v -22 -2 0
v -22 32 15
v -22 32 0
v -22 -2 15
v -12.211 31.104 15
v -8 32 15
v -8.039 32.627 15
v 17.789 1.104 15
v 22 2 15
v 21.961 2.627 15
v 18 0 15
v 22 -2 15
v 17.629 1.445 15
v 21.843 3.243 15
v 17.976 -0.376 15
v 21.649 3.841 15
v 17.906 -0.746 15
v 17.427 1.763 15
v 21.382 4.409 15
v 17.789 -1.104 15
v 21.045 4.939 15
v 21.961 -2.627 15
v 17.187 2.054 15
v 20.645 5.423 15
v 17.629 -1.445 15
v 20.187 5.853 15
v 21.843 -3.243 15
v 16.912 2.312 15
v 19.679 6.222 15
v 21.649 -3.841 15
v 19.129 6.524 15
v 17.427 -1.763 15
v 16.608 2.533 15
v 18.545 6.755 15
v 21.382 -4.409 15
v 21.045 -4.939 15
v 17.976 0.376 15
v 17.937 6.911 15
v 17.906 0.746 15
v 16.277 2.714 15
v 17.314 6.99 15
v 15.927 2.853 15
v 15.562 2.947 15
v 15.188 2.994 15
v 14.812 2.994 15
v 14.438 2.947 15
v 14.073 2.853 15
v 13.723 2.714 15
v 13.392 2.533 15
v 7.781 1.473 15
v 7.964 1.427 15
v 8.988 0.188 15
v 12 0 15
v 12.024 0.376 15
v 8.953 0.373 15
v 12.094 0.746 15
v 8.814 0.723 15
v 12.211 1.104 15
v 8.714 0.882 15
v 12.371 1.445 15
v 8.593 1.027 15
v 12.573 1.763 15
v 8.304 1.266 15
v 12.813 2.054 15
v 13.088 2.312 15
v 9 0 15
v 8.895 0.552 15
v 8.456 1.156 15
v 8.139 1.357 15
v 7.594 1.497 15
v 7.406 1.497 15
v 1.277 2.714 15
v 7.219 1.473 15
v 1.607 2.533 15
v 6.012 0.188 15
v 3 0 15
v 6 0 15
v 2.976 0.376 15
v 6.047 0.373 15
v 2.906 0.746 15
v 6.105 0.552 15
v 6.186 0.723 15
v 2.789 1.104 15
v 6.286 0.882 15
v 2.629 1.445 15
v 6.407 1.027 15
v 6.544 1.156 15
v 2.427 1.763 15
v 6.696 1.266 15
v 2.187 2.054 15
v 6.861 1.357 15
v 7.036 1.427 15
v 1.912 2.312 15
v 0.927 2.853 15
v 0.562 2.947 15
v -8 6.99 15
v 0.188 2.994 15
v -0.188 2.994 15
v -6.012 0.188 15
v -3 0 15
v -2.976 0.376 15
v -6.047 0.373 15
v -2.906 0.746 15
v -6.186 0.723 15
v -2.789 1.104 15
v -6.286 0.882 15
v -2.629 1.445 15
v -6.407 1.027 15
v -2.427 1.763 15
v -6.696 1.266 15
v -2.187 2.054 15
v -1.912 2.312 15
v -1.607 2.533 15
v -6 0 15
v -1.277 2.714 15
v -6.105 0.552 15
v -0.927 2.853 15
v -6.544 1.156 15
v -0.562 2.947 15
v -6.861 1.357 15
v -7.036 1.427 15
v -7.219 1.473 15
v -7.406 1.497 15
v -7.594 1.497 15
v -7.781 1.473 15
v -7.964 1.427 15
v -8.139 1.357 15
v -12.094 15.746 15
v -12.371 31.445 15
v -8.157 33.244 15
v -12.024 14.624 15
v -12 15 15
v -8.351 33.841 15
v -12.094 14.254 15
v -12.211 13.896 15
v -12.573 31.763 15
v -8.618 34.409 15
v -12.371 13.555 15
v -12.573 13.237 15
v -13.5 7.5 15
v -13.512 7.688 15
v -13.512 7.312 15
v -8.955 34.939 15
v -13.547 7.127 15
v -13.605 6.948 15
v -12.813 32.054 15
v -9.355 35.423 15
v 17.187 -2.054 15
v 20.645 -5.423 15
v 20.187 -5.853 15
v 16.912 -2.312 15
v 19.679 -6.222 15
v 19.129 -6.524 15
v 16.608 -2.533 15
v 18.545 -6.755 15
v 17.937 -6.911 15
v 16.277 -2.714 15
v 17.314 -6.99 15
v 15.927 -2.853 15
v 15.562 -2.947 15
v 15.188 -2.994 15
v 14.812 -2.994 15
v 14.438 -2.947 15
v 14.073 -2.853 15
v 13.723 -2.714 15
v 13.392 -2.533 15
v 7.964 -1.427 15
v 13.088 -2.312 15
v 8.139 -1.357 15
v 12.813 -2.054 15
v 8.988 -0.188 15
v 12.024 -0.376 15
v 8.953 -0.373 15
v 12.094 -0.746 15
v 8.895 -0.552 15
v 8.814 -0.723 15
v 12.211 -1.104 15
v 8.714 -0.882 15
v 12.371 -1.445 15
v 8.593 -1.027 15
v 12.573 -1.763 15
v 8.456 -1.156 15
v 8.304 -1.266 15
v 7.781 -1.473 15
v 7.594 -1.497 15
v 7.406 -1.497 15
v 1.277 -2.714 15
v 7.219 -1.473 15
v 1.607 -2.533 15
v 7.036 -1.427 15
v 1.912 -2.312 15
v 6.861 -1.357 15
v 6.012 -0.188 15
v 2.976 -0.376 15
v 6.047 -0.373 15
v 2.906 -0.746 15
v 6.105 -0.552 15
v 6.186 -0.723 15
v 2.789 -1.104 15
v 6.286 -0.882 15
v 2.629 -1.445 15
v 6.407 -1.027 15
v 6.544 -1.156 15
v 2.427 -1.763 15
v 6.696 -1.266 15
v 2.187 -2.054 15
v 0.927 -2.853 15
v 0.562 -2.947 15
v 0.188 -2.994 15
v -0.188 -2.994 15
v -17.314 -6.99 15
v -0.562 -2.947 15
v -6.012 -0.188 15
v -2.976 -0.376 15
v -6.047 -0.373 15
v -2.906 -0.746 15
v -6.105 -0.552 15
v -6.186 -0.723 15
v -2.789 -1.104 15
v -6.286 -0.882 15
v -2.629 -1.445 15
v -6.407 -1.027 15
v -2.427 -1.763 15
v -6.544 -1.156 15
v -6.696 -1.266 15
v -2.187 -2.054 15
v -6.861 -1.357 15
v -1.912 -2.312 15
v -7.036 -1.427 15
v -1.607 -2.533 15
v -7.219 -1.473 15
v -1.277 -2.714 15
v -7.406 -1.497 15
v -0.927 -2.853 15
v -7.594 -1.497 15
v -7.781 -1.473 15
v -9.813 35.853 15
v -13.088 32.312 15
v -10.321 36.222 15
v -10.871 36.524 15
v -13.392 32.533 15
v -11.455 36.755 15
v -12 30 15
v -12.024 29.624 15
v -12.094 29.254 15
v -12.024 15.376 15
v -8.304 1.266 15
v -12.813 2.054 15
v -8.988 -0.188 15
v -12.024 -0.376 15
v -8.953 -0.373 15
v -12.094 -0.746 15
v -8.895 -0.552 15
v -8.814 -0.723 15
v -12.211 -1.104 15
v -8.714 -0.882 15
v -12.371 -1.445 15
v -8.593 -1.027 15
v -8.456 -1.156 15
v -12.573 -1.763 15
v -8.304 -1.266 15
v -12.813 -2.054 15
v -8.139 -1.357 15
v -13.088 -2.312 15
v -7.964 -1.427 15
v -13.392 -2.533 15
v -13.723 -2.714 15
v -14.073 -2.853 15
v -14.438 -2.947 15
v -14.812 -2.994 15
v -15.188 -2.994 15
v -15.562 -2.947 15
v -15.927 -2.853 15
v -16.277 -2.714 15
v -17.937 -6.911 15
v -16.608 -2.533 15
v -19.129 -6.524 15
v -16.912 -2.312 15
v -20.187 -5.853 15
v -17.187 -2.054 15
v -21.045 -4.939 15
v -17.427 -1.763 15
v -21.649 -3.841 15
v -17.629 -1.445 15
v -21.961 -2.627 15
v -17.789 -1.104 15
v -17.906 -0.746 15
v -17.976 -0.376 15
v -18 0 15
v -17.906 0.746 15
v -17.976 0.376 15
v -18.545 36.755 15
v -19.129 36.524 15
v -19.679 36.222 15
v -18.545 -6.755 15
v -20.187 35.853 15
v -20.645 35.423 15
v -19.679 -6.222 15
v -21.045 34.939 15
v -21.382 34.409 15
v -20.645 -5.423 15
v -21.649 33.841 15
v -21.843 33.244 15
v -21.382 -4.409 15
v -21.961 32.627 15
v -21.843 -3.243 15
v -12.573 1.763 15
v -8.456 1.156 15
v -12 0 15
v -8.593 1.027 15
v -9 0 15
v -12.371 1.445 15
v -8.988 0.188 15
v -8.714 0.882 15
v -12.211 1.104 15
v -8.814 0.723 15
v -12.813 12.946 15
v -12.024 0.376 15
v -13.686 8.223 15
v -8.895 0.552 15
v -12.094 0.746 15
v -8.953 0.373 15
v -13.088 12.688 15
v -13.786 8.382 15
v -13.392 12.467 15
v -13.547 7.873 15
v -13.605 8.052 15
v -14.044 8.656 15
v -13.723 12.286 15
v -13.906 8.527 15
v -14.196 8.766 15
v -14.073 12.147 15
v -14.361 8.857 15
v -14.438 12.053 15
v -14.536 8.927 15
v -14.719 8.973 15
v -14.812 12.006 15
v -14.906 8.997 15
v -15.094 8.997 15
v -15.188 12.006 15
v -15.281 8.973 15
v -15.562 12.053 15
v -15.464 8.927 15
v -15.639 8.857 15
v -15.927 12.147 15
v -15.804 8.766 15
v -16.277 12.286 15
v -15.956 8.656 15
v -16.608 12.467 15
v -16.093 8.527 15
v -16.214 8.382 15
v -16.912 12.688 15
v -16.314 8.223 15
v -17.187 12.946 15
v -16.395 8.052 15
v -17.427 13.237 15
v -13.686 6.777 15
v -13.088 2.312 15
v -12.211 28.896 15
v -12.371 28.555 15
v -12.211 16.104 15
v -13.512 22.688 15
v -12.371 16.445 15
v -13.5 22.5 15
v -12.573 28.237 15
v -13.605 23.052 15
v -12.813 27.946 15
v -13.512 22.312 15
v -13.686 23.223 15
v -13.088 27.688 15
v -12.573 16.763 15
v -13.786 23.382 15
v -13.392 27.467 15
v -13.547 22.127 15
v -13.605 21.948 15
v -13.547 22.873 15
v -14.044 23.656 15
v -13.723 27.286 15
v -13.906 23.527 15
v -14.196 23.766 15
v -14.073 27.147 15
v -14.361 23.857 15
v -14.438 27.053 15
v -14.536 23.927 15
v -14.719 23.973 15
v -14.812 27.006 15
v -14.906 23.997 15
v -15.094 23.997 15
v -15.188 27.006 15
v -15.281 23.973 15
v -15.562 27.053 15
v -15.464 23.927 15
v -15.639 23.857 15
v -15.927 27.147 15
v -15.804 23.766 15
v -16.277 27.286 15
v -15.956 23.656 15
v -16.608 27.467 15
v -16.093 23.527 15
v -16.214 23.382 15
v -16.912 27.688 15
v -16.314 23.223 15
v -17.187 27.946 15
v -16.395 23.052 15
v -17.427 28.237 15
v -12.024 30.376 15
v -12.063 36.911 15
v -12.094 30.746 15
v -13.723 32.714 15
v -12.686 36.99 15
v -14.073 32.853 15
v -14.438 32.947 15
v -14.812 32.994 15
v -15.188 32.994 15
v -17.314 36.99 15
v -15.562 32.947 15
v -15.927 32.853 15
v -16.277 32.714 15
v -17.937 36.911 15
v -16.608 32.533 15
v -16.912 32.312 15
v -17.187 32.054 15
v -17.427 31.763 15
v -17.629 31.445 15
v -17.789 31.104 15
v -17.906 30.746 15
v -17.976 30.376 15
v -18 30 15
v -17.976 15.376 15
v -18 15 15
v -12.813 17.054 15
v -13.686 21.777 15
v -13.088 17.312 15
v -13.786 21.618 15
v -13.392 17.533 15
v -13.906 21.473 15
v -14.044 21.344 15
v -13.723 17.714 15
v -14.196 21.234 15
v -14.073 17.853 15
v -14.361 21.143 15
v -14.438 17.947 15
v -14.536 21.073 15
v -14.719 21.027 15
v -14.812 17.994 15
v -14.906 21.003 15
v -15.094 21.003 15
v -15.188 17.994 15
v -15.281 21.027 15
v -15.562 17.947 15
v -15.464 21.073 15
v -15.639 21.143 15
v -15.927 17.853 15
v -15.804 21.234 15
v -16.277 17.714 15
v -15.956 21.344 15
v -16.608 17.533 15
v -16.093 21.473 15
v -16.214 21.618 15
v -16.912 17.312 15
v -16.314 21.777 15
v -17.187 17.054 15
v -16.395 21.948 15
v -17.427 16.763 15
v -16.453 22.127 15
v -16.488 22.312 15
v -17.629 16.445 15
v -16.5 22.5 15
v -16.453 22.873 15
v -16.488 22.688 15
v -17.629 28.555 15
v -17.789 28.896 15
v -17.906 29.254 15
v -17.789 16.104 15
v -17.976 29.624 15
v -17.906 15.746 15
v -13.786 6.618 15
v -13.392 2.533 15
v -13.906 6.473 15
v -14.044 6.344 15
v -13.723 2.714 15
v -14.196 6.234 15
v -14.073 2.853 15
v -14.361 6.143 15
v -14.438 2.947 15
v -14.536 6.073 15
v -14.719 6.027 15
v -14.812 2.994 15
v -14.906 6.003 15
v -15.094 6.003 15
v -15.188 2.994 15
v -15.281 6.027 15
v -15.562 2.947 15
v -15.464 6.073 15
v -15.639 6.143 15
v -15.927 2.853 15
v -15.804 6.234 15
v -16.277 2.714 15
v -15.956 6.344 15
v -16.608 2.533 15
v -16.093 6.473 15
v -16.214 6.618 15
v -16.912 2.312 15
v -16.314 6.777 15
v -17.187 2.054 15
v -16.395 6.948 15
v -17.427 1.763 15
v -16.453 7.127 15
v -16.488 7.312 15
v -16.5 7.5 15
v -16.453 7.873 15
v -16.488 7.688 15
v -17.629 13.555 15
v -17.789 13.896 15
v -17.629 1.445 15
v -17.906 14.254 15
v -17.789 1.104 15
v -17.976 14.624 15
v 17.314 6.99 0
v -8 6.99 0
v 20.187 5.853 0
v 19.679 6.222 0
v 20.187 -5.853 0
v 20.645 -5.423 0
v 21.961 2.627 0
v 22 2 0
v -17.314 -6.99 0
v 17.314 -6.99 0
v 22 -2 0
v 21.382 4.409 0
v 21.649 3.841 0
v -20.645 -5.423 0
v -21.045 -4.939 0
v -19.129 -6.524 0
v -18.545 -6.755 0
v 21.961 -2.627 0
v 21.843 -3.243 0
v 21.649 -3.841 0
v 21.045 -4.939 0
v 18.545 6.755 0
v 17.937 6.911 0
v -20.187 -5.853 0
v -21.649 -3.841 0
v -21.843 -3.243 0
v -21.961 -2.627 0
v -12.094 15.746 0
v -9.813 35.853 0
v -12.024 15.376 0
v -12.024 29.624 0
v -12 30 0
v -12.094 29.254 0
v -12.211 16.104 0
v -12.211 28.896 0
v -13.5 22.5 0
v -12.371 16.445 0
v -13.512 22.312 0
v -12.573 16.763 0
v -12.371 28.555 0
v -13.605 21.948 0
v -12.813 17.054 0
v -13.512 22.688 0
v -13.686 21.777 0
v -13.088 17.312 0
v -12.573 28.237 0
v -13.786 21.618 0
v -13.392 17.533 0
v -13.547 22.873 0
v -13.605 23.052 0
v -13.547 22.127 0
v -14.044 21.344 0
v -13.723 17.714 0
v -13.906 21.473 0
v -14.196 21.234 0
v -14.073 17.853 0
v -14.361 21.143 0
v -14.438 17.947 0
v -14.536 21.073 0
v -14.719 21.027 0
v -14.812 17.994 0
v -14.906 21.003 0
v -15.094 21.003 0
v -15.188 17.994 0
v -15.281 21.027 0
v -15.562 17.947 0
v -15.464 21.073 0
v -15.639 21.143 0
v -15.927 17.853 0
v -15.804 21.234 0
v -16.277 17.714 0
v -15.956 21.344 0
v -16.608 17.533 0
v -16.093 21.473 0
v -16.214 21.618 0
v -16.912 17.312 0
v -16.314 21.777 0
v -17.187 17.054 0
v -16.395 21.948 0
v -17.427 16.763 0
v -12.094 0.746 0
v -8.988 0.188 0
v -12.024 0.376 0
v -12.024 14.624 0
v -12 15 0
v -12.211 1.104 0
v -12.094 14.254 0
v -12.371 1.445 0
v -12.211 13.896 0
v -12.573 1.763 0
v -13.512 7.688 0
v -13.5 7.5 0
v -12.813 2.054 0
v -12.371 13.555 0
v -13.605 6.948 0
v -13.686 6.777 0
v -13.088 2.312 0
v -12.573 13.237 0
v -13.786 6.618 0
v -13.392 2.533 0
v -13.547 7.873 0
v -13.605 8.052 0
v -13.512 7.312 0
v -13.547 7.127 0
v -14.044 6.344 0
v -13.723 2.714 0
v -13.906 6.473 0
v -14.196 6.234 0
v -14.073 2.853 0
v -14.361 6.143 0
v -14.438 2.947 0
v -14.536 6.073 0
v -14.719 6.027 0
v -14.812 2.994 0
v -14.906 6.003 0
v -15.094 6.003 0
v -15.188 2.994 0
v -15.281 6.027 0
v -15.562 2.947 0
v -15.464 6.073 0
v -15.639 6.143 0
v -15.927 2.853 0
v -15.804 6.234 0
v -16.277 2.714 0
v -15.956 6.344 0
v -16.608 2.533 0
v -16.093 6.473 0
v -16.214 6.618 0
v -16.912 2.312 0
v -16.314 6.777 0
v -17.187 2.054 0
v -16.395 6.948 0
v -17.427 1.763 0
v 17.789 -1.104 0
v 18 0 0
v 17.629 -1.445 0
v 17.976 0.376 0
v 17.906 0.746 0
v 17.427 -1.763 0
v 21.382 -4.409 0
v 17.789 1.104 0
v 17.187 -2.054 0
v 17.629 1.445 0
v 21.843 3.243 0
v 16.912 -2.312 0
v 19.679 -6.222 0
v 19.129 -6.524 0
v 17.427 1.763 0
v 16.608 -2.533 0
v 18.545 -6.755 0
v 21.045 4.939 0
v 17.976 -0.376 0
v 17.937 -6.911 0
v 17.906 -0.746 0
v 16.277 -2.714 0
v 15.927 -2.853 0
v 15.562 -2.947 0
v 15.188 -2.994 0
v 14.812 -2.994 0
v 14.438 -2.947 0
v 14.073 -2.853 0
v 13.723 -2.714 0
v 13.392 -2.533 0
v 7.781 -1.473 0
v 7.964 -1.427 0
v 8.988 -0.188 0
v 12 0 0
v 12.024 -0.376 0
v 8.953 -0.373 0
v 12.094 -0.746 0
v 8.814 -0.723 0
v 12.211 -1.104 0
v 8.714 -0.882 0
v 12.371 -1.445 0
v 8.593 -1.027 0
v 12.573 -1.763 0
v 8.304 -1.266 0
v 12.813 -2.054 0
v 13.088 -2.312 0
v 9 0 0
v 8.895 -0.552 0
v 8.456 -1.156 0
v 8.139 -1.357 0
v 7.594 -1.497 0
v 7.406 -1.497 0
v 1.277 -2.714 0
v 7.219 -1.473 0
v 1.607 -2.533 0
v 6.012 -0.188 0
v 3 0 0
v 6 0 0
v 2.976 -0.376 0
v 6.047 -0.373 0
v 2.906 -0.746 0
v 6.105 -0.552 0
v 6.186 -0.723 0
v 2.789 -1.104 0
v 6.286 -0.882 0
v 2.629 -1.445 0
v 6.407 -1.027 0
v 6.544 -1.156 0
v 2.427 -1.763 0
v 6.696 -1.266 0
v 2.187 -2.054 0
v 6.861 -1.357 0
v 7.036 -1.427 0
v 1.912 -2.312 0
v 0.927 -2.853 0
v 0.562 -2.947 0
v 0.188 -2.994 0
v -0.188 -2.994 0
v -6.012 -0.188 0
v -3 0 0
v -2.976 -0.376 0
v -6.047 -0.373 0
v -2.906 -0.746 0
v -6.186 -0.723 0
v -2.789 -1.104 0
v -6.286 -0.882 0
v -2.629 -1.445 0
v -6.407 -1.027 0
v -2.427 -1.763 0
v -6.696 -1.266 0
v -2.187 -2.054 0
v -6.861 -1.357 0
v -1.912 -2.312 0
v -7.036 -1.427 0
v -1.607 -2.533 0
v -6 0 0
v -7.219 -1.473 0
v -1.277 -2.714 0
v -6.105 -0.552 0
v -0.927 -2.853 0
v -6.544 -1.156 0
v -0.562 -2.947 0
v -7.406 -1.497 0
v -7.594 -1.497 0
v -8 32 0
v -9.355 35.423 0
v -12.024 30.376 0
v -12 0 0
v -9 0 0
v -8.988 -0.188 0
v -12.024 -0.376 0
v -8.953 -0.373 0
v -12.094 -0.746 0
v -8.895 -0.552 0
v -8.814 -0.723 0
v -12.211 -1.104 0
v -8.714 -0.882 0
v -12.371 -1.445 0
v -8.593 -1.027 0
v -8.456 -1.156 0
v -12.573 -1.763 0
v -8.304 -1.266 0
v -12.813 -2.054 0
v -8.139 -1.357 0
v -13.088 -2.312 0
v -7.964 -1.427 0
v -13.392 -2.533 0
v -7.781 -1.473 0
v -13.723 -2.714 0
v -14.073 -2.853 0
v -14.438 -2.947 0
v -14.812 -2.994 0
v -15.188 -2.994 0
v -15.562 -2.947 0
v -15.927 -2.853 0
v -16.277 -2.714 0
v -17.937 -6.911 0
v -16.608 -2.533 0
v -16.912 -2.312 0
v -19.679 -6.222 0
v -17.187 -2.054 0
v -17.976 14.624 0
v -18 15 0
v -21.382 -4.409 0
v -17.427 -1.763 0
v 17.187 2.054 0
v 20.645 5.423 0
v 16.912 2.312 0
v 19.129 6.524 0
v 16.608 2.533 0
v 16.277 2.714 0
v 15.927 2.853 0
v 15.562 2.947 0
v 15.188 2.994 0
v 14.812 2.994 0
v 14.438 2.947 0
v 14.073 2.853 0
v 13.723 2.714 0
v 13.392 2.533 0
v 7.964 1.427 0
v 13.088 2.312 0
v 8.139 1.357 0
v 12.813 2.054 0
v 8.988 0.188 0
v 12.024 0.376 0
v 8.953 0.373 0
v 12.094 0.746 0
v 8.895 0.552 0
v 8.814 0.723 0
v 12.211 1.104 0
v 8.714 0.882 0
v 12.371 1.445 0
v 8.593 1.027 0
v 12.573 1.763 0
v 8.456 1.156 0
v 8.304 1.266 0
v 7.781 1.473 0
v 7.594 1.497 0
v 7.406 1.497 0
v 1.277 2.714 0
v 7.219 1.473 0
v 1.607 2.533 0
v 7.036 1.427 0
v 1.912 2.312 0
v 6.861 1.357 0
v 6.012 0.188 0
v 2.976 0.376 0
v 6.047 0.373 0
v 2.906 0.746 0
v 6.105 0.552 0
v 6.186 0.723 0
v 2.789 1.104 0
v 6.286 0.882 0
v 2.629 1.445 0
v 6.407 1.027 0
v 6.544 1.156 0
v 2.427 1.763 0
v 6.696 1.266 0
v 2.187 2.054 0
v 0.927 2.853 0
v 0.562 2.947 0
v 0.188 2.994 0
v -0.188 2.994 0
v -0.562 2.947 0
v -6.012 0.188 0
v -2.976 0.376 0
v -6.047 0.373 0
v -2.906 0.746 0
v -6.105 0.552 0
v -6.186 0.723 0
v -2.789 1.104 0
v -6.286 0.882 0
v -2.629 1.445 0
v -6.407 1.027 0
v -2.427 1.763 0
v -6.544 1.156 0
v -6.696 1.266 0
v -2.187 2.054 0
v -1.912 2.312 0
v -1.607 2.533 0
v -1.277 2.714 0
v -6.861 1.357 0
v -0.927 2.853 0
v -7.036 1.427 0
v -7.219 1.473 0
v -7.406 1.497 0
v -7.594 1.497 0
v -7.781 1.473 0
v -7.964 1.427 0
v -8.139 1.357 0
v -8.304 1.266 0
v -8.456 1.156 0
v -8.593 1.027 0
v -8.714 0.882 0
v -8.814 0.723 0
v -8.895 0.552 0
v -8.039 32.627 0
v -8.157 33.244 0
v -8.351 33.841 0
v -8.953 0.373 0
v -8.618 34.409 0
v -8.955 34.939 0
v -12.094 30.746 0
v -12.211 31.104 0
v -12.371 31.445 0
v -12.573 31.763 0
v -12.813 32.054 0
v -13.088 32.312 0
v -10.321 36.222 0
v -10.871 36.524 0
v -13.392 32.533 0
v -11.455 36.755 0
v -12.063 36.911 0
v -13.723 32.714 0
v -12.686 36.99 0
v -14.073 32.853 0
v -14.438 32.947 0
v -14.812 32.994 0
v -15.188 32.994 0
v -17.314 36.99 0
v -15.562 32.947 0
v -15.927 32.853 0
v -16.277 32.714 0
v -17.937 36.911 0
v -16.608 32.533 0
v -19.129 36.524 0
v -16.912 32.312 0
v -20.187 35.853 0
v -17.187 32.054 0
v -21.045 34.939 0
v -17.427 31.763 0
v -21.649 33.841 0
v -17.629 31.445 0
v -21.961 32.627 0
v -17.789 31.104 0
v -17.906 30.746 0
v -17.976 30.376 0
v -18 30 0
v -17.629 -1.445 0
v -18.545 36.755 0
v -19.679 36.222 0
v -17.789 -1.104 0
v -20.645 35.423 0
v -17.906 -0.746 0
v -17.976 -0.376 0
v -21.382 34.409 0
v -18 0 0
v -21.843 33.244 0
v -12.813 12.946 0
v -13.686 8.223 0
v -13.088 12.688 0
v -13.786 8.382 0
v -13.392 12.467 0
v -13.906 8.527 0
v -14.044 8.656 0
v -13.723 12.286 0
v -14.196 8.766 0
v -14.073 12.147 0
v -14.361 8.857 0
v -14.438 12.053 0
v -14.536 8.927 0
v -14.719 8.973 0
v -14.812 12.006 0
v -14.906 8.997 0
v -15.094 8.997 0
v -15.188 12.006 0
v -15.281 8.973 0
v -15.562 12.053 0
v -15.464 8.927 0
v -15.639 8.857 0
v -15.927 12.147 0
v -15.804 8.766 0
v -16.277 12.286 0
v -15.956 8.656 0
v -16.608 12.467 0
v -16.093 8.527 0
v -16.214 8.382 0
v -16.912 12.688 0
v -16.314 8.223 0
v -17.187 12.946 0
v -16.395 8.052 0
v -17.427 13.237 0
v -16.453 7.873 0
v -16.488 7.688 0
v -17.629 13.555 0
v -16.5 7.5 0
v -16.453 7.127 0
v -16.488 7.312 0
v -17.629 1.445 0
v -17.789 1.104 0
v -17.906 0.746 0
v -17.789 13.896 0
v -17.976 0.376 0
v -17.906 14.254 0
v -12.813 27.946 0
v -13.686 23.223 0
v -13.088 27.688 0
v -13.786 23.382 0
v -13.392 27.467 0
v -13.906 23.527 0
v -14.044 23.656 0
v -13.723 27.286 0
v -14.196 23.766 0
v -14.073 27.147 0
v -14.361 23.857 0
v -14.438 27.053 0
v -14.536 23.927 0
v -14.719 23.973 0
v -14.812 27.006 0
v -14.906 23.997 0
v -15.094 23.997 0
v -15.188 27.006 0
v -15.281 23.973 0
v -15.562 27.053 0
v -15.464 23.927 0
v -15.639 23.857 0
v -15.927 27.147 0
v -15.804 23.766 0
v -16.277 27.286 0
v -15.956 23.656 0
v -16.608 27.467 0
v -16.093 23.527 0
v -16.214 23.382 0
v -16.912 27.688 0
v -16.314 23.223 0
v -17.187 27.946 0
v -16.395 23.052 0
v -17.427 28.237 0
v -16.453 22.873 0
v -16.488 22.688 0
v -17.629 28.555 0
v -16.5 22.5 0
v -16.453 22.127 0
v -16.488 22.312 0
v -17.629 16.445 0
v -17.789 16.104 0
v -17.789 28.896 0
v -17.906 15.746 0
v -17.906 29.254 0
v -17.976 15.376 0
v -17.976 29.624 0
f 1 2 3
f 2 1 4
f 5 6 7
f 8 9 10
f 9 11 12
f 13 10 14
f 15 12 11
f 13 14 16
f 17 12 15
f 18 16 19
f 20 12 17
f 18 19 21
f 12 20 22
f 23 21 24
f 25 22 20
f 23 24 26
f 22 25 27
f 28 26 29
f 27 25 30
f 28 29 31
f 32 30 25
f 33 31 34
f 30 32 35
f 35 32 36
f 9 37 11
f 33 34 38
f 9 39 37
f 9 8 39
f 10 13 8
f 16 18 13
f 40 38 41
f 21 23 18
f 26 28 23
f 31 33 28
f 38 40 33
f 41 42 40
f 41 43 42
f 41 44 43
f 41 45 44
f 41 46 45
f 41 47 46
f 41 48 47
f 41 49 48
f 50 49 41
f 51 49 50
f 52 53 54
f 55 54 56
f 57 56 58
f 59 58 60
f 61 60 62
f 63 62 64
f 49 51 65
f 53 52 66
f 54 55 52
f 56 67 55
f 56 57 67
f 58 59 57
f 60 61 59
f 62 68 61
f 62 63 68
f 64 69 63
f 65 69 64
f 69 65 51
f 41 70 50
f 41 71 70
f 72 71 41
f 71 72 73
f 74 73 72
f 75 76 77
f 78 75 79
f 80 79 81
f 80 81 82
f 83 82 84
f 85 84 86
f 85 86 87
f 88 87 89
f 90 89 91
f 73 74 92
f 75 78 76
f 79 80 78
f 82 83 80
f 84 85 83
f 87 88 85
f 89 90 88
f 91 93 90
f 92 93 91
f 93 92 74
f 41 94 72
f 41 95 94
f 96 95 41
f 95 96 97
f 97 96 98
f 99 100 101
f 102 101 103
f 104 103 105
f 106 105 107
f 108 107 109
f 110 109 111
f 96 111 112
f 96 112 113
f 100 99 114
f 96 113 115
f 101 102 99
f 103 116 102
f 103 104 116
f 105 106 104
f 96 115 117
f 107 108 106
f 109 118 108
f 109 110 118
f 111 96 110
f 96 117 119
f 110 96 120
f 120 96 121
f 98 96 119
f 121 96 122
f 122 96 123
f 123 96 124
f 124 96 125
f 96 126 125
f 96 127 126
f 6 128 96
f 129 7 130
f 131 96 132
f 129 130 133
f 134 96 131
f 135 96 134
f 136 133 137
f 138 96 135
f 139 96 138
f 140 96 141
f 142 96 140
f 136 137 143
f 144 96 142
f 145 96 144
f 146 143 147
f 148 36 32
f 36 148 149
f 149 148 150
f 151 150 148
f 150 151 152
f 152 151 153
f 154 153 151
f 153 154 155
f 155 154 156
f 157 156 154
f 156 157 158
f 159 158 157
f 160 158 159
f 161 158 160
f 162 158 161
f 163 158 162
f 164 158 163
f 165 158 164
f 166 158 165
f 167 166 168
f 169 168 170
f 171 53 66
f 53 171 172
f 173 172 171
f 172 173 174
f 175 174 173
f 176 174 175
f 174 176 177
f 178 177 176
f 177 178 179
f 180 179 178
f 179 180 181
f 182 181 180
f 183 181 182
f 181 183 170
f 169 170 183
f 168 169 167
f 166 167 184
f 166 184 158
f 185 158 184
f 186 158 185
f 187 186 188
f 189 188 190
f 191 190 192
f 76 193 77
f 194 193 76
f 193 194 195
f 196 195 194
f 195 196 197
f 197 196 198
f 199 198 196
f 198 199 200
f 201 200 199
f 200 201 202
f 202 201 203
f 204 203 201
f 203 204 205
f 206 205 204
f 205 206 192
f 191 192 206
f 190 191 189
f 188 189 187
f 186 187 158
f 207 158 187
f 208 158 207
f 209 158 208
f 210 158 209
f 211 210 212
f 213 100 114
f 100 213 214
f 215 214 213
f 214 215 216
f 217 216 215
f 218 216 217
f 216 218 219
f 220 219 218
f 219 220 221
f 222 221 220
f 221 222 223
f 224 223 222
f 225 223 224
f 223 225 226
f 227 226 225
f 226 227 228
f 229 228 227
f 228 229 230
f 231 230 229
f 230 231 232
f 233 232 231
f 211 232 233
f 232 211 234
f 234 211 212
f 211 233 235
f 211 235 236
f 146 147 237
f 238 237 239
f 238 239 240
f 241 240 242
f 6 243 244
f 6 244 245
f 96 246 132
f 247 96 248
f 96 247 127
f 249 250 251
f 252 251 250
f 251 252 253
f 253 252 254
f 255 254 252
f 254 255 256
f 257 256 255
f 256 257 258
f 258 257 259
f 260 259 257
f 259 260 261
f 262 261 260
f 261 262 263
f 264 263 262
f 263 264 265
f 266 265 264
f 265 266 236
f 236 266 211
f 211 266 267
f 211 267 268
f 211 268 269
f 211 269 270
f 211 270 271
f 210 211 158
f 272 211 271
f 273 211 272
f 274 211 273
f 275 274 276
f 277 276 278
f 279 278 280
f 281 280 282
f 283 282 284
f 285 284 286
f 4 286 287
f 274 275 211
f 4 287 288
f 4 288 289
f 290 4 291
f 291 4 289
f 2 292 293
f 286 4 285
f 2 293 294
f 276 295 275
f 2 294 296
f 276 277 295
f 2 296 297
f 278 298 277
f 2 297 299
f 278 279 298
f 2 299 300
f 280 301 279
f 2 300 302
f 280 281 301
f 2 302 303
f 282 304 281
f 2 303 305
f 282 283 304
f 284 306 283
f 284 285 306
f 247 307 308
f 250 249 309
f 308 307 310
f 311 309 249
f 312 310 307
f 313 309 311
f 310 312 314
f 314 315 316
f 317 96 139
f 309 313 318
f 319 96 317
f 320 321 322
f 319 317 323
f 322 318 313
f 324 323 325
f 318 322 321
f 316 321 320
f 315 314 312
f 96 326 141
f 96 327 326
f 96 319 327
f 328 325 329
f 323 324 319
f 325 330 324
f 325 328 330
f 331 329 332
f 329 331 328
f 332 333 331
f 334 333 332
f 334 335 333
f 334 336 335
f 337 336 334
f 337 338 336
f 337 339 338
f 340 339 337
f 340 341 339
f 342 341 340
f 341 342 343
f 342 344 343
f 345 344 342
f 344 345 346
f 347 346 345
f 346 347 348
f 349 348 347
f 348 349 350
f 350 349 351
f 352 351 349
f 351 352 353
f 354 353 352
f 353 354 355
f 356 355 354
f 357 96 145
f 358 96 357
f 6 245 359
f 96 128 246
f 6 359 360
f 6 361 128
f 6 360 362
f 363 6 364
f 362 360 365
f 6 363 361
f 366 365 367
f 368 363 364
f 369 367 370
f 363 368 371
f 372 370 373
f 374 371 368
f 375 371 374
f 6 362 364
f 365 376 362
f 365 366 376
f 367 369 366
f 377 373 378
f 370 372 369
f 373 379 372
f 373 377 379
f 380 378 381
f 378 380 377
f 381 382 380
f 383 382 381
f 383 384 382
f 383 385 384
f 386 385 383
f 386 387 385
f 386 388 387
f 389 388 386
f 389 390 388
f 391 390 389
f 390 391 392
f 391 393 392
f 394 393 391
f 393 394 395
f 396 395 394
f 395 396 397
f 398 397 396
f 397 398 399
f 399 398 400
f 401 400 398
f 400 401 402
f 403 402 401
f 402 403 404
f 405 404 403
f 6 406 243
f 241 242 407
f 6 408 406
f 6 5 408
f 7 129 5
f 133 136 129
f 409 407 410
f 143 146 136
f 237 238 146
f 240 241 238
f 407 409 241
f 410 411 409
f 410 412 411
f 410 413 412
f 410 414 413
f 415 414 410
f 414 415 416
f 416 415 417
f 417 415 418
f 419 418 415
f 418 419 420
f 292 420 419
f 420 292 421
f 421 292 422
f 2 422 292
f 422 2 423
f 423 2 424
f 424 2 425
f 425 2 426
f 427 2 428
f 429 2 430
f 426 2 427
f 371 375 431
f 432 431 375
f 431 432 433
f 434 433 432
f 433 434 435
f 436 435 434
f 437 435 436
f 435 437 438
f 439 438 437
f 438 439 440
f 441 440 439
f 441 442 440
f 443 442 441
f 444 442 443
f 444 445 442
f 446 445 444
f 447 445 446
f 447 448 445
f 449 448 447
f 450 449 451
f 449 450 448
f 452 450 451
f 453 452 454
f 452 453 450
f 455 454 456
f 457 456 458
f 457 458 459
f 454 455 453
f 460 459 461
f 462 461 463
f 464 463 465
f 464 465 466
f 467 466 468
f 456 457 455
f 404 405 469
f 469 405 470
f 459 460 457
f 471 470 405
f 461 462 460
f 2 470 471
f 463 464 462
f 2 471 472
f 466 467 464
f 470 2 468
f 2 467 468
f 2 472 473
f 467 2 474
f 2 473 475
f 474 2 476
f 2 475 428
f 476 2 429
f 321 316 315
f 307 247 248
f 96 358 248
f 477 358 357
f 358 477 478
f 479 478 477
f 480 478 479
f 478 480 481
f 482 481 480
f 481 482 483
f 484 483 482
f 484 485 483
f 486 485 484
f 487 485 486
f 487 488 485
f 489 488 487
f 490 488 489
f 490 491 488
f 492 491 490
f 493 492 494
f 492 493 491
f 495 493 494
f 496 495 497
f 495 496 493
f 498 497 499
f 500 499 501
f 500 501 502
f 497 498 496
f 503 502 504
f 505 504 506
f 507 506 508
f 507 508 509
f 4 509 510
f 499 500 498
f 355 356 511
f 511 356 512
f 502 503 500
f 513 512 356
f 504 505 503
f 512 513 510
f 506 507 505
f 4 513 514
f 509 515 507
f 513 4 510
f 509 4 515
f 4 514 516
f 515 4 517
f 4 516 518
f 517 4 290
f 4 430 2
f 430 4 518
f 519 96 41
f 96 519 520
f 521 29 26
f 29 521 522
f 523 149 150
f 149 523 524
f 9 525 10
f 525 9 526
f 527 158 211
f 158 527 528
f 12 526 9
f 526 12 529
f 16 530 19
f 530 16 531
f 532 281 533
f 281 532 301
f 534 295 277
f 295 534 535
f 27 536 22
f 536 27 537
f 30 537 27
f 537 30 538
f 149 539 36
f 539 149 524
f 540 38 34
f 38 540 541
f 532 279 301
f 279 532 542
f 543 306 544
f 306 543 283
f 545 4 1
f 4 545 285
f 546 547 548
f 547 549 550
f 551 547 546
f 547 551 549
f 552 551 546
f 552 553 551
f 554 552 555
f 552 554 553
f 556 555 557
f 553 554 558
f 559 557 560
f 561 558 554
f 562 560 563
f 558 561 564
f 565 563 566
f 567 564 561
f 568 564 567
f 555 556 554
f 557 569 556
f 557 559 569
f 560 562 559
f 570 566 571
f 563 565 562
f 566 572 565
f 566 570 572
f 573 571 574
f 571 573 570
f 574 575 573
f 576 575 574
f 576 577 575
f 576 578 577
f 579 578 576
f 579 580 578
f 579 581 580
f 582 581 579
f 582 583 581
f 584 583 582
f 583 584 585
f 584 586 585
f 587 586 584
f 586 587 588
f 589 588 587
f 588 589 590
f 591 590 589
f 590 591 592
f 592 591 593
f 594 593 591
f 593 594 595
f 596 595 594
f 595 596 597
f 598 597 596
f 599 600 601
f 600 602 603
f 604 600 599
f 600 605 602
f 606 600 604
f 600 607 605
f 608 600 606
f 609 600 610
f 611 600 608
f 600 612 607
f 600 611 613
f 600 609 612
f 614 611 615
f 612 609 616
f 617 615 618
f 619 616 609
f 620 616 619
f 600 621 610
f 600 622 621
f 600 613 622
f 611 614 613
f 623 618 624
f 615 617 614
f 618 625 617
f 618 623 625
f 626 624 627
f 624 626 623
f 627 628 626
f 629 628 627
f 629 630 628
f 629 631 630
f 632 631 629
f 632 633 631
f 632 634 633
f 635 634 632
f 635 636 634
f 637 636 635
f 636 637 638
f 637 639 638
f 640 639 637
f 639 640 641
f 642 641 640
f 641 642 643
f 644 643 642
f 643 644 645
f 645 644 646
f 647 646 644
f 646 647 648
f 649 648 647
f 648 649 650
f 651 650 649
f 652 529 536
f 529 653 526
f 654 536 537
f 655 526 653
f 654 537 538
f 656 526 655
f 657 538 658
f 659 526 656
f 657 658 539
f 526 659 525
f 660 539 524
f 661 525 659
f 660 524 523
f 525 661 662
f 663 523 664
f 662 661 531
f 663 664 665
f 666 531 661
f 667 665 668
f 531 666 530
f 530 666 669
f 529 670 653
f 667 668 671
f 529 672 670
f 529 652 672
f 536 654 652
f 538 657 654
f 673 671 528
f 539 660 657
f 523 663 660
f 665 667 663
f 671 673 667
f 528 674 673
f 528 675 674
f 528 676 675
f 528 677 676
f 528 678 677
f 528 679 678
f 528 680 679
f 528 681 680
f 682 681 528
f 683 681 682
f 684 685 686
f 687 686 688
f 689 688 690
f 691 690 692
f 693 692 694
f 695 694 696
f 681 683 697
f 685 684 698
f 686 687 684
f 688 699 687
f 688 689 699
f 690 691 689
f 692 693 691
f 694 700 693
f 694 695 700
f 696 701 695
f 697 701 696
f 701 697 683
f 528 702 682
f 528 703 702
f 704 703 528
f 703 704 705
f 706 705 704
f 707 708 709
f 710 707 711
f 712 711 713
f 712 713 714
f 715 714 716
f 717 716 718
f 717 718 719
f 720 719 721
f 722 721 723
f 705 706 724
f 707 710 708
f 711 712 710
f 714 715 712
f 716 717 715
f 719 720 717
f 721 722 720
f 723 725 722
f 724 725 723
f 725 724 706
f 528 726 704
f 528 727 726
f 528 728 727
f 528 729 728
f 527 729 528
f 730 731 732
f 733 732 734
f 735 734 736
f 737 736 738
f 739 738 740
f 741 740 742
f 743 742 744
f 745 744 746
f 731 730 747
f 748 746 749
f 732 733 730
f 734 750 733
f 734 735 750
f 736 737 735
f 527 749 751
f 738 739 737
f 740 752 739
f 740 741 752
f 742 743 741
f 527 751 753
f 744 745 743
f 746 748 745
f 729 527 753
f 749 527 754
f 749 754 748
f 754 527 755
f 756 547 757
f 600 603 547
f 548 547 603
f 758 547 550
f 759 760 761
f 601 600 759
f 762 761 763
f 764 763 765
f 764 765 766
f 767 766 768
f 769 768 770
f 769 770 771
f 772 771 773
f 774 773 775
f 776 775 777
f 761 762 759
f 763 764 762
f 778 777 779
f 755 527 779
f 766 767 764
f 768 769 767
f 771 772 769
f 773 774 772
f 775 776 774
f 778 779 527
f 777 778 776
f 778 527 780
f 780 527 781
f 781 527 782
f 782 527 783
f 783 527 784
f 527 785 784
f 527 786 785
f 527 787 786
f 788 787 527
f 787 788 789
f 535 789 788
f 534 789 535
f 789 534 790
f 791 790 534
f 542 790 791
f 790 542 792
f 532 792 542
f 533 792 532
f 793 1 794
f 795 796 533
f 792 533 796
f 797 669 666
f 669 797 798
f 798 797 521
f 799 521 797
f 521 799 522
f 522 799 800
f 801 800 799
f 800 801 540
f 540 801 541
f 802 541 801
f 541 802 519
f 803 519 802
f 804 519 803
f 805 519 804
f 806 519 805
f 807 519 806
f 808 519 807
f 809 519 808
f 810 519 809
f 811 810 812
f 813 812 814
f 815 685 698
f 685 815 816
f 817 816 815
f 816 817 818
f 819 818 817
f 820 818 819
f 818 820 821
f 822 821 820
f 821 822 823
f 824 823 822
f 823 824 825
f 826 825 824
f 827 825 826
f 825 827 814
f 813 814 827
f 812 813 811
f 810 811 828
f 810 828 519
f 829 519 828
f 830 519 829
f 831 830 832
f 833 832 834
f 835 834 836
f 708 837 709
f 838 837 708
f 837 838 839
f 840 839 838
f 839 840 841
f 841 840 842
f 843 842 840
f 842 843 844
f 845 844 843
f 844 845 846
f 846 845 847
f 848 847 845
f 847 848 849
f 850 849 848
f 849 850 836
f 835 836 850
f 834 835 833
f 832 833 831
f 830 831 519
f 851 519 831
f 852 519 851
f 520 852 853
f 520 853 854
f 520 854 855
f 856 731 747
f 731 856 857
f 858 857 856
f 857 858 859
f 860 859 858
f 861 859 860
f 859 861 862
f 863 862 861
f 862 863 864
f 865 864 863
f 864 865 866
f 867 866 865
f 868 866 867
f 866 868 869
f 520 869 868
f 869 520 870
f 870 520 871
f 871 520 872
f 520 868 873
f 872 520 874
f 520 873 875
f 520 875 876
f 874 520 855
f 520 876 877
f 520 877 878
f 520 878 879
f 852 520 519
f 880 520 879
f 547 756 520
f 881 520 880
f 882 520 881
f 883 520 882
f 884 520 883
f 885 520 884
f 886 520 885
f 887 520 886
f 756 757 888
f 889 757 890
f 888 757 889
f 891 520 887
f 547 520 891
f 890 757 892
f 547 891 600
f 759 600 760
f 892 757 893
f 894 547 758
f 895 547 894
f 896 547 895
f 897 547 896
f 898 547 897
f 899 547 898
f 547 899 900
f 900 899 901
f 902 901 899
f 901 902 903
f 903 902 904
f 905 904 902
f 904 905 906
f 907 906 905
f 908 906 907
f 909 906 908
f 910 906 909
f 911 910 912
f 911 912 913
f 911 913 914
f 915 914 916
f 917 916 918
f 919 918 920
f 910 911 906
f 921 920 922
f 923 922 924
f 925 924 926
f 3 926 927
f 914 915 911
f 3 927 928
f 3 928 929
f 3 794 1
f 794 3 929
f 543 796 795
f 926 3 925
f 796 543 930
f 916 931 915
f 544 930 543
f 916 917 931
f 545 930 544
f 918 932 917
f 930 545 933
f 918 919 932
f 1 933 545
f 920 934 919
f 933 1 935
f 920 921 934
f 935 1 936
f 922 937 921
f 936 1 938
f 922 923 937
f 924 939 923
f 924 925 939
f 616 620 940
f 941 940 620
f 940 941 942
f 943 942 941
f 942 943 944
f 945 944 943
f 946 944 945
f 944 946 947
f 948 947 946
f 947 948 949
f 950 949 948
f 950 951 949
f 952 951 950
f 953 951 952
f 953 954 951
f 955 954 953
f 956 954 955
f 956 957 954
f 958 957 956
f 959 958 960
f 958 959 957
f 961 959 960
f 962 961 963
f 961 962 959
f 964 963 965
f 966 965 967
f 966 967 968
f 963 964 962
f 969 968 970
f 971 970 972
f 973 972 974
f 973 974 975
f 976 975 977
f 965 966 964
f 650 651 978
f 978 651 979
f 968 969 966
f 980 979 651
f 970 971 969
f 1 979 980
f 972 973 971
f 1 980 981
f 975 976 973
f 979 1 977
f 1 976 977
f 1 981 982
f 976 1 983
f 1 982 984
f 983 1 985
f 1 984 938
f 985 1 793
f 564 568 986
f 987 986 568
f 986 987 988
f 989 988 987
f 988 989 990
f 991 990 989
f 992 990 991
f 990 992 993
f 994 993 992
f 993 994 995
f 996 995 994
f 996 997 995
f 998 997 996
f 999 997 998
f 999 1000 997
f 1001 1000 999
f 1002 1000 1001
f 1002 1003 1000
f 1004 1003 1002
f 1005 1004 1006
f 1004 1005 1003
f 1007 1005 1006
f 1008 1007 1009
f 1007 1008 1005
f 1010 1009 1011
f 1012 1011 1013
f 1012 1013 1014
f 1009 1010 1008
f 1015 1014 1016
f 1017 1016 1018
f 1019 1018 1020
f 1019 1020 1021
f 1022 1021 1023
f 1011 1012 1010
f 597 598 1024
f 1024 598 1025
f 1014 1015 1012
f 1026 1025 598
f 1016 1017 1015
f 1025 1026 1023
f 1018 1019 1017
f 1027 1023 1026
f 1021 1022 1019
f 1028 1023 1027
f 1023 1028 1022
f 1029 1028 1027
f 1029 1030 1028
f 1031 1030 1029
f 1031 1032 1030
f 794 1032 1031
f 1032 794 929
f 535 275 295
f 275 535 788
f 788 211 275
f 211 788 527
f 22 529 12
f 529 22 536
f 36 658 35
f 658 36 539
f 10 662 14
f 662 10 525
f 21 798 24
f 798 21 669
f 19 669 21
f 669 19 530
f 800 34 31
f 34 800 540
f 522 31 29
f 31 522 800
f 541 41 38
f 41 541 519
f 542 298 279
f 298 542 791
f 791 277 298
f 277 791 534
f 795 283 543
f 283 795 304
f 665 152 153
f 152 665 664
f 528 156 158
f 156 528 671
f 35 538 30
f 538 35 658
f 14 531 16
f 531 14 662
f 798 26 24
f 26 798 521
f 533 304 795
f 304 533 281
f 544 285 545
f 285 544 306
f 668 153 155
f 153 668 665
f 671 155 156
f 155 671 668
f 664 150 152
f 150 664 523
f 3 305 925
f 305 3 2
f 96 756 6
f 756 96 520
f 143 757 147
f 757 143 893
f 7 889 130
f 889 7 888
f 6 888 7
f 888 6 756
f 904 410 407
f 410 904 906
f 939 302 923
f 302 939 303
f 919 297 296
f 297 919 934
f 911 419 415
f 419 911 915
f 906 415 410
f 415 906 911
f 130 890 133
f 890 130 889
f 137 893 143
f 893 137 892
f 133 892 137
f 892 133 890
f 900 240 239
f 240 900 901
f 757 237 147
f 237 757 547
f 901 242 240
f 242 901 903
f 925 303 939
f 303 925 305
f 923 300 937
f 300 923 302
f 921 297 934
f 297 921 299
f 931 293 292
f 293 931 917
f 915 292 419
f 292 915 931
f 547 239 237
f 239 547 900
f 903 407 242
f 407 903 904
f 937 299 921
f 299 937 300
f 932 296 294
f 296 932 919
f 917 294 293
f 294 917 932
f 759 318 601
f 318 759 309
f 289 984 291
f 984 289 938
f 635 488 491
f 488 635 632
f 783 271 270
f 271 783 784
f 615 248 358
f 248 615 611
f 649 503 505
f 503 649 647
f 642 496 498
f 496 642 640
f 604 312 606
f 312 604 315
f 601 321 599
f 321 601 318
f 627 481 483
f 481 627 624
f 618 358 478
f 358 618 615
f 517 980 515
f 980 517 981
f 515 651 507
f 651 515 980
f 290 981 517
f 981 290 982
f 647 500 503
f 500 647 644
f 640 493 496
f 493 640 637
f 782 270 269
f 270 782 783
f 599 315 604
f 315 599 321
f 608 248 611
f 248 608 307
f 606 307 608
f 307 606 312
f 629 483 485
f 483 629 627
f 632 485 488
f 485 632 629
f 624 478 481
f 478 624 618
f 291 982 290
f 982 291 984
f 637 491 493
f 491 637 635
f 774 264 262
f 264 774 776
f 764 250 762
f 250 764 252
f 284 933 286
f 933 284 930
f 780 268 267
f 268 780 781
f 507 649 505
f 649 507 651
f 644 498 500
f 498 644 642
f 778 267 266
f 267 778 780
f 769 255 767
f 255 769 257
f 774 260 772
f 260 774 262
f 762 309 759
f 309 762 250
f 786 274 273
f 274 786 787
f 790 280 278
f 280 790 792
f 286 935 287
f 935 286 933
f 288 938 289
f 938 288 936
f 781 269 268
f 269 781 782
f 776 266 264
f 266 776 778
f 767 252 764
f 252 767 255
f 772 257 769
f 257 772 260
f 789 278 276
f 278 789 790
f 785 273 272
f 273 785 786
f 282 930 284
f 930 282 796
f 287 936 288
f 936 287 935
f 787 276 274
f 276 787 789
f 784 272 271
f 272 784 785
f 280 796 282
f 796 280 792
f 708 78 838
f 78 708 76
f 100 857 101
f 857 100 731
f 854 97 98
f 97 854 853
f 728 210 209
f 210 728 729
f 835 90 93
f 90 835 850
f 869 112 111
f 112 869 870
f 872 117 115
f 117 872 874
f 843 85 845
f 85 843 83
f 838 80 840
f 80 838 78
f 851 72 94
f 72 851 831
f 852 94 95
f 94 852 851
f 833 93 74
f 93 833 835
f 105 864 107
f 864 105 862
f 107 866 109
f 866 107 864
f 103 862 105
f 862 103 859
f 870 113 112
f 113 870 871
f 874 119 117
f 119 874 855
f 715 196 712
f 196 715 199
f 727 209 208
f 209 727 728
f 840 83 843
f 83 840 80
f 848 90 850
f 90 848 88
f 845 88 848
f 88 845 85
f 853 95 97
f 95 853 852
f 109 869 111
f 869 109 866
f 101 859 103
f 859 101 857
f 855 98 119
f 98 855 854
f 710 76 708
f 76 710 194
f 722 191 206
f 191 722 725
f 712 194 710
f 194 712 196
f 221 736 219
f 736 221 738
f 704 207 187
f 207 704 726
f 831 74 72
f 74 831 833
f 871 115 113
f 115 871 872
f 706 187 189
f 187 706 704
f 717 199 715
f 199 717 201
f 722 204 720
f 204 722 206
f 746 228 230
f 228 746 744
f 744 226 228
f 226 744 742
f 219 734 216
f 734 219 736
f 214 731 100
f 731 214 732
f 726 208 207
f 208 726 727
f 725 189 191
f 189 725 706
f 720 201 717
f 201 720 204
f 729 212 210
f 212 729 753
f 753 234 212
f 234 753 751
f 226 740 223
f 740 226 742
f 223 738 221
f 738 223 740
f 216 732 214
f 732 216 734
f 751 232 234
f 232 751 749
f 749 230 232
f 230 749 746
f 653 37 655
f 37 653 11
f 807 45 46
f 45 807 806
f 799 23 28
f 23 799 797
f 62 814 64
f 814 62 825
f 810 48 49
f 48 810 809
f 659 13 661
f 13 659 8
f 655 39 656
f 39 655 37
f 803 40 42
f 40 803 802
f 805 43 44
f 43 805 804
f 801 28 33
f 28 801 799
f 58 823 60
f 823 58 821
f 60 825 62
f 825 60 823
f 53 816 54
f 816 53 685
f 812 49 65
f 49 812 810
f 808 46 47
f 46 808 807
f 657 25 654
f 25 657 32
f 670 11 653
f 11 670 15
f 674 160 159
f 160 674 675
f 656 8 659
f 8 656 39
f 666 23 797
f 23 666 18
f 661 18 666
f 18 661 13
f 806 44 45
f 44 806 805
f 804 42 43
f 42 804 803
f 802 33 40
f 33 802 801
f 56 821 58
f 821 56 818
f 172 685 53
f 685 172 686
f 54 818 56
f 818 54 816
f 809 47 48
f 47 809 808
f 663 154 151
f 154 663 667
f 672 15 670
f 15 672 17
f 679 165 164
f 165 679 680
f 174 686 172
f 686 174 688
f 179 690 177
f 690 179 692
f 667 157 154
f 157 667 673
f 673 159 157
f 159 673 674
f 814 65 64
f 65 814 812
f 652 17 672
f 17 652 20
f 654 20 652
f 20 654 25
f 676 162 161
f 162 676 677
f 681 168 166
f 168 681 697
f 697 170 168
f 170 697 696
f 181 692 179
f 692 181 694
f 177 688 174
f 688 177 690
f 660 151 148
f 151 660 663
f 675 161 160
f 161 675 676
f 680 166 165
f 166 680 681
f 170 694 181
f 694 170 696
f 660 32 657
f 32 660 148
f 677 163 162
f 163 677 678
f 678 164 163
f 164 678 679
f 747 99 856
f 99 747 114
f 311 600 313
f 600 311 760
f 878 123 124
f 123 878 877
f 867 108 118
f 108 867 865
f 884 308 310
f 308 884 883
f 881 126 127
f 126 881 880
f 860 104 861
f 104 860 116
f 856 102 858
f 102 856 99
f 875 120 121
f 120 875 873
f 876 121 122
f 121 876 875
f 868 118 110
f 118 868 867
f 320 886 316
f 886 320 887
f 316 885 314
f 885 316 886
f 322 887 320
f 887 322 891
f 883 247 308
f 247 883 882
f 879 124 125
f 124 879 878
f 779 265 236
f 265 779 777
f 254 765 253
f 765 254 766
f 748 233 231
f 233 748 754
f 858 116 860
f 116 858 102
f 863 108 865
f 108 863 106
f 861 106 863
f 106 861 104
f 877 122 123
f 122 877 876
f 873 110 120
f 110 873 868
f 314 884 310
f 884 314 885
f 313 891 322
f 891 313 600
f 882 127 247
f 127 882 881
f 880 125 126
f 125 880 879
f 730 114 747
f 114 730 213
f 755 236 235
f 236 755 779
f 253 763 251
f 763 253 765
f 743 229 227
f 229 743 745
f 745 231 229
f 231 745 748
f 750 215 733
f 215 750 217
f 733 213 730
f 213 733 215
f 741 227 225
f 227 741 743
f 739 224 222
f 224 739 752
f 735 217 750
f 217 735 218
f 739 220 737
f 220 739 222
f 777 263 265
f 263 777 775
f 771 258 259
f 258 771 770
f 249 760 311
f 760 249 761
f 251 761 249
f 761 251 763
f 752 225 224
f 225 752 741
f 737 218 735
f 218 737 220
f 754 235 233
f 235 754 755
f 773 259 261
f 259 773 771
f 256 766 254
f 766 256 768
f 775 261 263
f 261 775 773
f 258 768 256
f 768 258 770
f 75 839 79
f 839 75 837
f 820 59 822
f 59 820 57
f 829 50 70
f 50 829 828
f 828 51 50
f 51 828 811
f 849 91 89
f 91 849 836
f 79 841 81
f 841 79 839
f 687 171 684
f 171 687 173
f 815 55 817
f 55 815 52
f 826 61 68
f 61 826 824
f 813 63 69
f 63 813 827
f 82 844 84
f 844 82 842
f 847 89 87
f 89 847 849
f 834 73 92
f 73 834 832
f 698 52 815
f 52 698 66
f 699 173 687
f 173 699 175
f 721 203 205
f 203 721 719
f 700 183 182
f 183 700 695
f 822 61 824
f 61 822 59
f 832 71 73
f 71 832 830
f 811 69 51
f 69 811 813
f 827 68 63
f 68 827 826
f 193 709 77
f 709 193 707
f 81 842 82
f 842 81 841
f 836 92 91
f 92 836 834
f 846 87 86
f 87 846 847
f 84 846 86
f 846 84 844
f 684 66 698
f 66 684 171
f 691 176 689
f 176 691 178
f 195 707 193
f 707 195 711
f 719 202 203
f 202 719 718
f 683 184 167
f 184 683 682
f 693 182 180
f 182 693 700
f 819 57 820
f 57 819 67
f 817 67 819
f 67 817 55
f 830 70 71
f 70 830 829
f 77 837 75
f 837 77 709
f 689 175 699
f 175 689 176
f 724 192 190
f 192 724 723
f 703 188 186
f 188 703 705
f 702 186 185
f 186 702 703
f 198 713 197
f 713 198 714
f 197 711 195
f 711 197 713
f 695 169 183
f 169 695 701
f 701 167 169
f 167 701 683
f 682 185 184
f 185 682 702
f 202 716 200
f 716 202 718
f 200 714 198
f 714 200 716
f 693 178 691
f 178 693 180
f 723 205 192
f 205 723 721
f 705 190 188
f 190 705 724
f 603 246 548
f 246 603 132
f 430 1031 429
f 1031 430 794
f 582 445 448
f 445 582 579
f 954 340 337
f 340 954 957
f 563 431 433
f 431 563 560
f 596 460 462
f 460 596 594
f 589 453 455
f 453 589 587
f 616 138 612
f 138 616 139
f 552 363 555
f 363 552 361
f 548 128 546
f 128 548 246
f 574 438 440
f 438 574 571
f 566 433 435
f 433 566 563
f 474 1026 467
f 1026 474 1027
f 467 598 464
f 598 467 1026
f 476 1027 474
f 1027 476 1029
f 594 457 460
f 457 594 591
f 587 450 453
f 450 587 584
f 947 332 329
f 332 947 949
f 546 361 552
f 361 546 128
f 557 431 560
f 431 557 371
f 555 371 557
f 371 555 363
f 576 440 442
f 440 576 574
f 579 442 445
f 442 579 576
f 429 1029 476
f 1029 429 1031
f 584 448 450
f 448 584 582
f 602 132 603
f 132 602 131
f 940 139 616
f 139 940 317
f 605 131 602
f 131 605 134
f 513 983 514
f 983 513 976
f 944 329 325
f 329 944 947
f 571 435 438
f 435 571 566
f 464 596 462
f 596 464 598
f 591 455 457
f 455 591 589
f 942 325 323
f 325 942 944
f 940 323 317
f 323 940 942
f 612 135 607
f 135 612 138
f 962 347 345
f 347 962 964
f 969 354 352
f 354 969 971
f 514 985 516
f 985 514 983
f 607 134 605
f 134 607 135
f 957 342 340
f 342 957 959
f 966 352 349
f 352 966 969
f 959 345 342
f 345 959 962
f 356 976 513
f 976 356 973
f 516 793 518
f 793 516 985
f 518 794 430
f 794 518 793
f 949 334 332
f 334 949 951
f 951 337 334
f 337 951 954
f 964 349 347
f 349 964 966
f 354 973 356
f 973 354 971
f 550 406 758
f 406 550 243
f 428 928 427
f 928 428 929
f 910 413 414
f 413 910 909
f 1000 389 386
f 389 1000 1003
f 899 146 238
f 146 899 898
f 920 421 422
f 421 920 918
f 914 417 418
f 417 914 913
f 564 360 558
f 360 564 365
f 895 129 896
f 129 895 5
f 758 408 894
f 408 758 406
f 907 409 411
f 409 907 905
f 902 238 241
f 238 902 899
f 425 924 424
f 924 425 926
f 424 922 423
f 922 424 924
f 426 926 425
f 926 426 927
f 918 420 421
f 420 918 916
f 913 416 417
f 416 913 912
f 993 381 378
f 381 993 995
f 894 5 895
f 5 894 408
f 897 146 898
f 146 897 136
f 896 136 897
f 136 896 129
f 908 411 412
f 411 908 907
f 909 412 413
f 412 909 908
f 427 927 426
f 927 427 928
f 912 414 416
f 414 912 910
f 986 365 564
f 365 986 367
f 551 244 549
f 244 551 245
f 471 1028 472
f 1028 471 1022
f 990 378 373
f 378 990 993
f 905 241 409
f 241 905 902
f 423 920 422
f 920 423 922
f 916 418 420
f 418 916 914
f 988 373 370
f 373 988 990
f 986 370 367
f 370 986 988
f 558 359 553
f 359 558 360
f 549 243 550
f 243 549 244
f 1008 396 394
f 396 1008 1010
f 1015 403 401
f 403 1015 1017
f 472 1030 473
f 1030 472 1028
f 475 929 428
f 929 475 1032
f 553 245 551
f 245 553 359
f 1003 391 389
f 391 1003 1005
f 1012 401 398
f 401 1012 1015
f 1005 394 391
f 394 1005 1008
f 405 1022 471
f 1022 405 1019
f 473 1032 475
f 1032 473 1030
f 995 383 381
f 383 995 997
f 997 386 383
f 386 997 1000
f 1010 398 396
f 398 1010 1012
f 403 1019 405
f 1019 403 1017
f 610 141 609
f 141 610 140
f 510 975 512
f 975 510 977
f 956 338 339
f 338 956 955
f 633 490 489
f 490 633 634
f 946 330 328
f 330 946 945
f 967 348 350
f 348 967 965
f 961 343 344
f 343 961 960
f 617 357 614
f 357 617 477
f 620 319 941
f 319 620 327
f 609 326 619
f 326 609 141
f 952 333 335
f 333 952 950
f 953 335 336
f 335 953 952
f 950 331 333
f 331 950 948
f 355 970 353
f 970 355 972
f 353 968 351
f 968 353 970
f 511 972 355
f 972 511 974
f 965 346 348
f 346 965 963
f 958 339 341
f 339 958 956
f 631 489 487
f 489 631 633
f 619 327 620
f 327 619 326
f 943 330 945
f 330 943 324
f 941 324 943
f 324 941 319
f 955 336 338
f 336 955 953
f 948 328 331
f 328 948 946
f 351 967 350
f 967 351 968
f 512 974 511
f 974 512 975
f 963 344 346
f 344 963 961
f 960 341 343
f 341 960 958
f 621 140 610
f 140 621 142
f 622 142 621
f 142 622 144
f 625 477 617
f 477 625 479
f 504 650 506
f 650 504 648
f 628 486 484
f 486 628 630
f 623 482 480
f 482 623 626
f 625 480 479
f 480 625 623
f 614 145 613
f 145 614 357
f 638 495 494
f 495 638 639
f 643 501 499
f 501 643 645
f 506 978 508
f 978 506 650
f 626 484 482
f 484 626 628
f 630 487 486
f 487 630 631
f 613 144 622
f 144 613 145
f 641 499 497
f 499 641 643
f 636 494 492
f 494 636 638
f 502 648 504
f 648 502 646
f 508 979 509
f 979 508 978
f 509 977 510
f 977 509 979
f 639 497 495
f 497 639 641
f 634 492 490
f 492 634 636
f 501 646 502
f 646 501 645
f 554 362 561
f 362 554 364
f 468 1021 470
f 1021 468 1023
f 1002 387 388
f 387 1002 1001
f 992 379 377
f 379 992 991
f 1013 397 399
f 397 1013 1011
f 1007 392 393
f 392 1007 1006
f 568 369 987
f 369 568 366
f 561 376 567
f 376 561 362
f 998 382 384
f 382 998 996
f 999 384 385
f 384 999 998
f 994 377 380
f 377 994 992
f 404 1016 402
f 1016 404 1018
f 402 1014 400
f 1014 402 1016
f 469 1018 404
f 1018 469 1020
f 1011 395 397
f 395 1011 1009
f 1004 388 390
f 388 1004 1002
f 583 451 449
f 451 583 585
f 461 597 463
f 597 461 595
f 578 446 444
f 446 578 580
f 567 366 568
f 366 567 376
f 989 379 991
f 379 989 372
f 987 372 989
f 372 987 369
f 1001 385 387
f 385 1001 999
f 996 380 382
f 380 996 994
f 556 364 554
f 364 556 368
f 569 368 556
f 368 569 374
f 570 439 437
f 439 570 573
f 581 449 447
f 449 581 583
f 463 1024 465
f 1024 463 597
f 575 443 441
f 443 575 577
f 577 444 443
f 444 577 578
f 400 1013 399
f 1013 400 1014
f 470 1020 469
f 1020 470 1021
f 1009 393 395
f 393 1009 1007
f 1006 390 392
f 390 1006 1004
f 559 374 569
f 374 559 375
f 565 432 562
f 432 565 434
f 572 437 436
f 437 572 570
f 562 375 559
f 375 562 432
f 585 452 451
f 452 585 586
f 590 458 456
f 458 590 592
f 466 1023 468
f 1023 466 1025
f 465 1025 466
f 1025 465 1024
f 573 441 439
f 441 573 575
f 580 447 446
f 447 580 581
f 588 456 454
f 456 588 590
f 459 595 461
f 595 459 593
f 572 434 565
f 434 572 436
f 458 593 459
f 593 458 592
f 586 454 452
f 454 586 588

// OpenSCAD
$fn = 50;


difference() {
	union() {
		*color(alpha = 1.0000000000, c = "gray") {
			translate(v = [0, 7, 0]) {
				linear_extrude(height = 1) {
					text(font = "Arial:style=Bold", halign = "center", size = 4.5000000000, text = "COMMENT plate main", valign = "center");
				}
			}
		}
		hull() {
			translate(v = [-17.0000000000, 2.0000000000, 0]) {
				cylinder(h = 15, r = 5);
			}
			translate(v = [17.0000000000, 2.0000000000, 0]) {
				cylinder(h = 15, r = 5);
			}
			translate(v = [-17.0000000000, -2.0000000000, 0]) {
				cylinder(h = 15, r = 5);
			}
			translate(v = [17.0000000000, -2.0000000000, 0]) {
				cylinder(h = 15, r = 5);
			}
		}
		*color(alpha = 1.0000000000, c = "gray") {
			translate(v = [0, 7, 0]) {
				linear_extrude(height = 1) {
					text(font = "Arial:style=Bold", halign = "center", size = 4.5000000000, text = "COMMENT plate main", valign = "center");
				}
			}
		}
		translate(v = [-15.0000000000, 15.0000000000, 0]) {
			hull() {
				translate(v = [-2.0000000000, 17.0000000000, 0]) {
					cylinder(h = 15, r = 5);
				}
				translate(v = [2.0000000000, 17.0000000000, 0]) {
					cylinder(h = 15, r = 5);
				}
				translate(v = [-2.0000000000, -17.0000000000, 0]) {
					cylinder(h = 15, r = 5);
				}
				translate(v = [2.0000000000, -17.0000000000, 0]) {
					cylinder(h = 15, r = 5);
				}
			}
		}
	}
	union() {
		*color(alpha = 1.0000000000, c = "gray") {
			translate(v = [0, 7, 0]) {
				linear_extrude(height = 1) {
					text(font = "Arial:style=Bold", halign = "center", size = 4.5000000000, text = "COMMENT holes main", valign = "center");
				}
			}
		}
		translate(v = [-15.0000000000, 0.0000000000, 0]) {
			translate(v = [0, 0, -50]) {
				cylinder(h = 100, r = 3.0000000000);
			}
		}
		translate(v = [0, 0, -50]) {
			cylinder(h = 100, r = 3.0000000000);
		}
		translate(v = [15.0000000000, 0.0000000000, 0]) {
			translate(v = [0, 0, -50]) {
				cylinder(h = 100, r = 3.0000000000);
			}
		}
		translate(v = [-15.0000000000, 0.0000000000, 0]) {
			translate(v = [0, 0, -50]) {
				cylinder(h = 100, r = 1.5000000000);
			}
		}
		translate(v = [-7.5000000000, 0.0000000000, 0]) {
			translate(v = [0, 0, -50]) {
				cylinder(h = 100, r = 1.5000000000);
			}
		}
		translate(v = [0, 0, -50]) {
			cylinder(h = 100, r = 1.5000000000);
		}
		translate(v = [7.5000000000, 0.0000000000, 0]) {
			translate(v = [0, 0, -50]) {
				cylinder(h = 100, r = 1.5000000000);
			}
		}
		translate(v = [15.0000000000, 0.0000000000, 0]) {
			translate(v = [0, 0, -50]) {
				cylinder(h = 100, r = 1.5000000000);
			}
		}
		*color(alpha = 1.0000000000, c = "gray") {
			translate(v = [0, 7, 0]) {
				linear_extrude(height = 1) {
					text(font = "Arial:style=Bold", halign = "center", size = 4.5000000000, text = "COMMENT holes main", valign = "center");
				}
			}
		}
		translate(v = [-15.0000000000, 0.0000000000, 0]) {
			translate(v = [0, 0, -50]) {
				cylinder(h = 100, r = 3.0000000000);
			}
		}
		translate(v = [-15.0000000000, 15.0000000000, 0]) {
			translate(v = [0, 0, -50]) {
				cylinder(h = 100, r = 3.0000000000);
			}
		}
		translate(v = [-15.0000000000, 30.0000000000, 0]) {
			translate(v = [0, 0, -50]) {
				cylinder(h = 100, r = 3.0000000000);
			}
		}
		translate(v = [-15.0000000000, 0.0000000000, 0]) {
			translate(v = [0, 0, -50]) {
				cylinder(h = 100, r = 1.5000000000);
			}
		}
		translate(v = [-15.0000000000, 7.5000000000, 0]) {
			translate(v = [0, 0, -50]) {
				cylinder(h = 100, r = 1.5000000000);
			}
		}
		translate(v = [-15.0000000000, 15.0000000000, 0]) {
			translate(v = [0, 0, -50]) {
				cylinder(h = 100, r = 1.5000000000);
			}
		}
		translate(v = [-15.0000000000, 22.5000000000, 0]) {
			translate(v = [0, 0, -50]) {
				cylinder(h = 100, r = 1.5000000000);
			}
		}
		translate(v = [-15.0000000000, 30.0000000000, 0]) {
			translate(v = [0, 0, -50]) {
				cylinder(h = 100, r = 1.5000000000);
			}
		}
	}
}
